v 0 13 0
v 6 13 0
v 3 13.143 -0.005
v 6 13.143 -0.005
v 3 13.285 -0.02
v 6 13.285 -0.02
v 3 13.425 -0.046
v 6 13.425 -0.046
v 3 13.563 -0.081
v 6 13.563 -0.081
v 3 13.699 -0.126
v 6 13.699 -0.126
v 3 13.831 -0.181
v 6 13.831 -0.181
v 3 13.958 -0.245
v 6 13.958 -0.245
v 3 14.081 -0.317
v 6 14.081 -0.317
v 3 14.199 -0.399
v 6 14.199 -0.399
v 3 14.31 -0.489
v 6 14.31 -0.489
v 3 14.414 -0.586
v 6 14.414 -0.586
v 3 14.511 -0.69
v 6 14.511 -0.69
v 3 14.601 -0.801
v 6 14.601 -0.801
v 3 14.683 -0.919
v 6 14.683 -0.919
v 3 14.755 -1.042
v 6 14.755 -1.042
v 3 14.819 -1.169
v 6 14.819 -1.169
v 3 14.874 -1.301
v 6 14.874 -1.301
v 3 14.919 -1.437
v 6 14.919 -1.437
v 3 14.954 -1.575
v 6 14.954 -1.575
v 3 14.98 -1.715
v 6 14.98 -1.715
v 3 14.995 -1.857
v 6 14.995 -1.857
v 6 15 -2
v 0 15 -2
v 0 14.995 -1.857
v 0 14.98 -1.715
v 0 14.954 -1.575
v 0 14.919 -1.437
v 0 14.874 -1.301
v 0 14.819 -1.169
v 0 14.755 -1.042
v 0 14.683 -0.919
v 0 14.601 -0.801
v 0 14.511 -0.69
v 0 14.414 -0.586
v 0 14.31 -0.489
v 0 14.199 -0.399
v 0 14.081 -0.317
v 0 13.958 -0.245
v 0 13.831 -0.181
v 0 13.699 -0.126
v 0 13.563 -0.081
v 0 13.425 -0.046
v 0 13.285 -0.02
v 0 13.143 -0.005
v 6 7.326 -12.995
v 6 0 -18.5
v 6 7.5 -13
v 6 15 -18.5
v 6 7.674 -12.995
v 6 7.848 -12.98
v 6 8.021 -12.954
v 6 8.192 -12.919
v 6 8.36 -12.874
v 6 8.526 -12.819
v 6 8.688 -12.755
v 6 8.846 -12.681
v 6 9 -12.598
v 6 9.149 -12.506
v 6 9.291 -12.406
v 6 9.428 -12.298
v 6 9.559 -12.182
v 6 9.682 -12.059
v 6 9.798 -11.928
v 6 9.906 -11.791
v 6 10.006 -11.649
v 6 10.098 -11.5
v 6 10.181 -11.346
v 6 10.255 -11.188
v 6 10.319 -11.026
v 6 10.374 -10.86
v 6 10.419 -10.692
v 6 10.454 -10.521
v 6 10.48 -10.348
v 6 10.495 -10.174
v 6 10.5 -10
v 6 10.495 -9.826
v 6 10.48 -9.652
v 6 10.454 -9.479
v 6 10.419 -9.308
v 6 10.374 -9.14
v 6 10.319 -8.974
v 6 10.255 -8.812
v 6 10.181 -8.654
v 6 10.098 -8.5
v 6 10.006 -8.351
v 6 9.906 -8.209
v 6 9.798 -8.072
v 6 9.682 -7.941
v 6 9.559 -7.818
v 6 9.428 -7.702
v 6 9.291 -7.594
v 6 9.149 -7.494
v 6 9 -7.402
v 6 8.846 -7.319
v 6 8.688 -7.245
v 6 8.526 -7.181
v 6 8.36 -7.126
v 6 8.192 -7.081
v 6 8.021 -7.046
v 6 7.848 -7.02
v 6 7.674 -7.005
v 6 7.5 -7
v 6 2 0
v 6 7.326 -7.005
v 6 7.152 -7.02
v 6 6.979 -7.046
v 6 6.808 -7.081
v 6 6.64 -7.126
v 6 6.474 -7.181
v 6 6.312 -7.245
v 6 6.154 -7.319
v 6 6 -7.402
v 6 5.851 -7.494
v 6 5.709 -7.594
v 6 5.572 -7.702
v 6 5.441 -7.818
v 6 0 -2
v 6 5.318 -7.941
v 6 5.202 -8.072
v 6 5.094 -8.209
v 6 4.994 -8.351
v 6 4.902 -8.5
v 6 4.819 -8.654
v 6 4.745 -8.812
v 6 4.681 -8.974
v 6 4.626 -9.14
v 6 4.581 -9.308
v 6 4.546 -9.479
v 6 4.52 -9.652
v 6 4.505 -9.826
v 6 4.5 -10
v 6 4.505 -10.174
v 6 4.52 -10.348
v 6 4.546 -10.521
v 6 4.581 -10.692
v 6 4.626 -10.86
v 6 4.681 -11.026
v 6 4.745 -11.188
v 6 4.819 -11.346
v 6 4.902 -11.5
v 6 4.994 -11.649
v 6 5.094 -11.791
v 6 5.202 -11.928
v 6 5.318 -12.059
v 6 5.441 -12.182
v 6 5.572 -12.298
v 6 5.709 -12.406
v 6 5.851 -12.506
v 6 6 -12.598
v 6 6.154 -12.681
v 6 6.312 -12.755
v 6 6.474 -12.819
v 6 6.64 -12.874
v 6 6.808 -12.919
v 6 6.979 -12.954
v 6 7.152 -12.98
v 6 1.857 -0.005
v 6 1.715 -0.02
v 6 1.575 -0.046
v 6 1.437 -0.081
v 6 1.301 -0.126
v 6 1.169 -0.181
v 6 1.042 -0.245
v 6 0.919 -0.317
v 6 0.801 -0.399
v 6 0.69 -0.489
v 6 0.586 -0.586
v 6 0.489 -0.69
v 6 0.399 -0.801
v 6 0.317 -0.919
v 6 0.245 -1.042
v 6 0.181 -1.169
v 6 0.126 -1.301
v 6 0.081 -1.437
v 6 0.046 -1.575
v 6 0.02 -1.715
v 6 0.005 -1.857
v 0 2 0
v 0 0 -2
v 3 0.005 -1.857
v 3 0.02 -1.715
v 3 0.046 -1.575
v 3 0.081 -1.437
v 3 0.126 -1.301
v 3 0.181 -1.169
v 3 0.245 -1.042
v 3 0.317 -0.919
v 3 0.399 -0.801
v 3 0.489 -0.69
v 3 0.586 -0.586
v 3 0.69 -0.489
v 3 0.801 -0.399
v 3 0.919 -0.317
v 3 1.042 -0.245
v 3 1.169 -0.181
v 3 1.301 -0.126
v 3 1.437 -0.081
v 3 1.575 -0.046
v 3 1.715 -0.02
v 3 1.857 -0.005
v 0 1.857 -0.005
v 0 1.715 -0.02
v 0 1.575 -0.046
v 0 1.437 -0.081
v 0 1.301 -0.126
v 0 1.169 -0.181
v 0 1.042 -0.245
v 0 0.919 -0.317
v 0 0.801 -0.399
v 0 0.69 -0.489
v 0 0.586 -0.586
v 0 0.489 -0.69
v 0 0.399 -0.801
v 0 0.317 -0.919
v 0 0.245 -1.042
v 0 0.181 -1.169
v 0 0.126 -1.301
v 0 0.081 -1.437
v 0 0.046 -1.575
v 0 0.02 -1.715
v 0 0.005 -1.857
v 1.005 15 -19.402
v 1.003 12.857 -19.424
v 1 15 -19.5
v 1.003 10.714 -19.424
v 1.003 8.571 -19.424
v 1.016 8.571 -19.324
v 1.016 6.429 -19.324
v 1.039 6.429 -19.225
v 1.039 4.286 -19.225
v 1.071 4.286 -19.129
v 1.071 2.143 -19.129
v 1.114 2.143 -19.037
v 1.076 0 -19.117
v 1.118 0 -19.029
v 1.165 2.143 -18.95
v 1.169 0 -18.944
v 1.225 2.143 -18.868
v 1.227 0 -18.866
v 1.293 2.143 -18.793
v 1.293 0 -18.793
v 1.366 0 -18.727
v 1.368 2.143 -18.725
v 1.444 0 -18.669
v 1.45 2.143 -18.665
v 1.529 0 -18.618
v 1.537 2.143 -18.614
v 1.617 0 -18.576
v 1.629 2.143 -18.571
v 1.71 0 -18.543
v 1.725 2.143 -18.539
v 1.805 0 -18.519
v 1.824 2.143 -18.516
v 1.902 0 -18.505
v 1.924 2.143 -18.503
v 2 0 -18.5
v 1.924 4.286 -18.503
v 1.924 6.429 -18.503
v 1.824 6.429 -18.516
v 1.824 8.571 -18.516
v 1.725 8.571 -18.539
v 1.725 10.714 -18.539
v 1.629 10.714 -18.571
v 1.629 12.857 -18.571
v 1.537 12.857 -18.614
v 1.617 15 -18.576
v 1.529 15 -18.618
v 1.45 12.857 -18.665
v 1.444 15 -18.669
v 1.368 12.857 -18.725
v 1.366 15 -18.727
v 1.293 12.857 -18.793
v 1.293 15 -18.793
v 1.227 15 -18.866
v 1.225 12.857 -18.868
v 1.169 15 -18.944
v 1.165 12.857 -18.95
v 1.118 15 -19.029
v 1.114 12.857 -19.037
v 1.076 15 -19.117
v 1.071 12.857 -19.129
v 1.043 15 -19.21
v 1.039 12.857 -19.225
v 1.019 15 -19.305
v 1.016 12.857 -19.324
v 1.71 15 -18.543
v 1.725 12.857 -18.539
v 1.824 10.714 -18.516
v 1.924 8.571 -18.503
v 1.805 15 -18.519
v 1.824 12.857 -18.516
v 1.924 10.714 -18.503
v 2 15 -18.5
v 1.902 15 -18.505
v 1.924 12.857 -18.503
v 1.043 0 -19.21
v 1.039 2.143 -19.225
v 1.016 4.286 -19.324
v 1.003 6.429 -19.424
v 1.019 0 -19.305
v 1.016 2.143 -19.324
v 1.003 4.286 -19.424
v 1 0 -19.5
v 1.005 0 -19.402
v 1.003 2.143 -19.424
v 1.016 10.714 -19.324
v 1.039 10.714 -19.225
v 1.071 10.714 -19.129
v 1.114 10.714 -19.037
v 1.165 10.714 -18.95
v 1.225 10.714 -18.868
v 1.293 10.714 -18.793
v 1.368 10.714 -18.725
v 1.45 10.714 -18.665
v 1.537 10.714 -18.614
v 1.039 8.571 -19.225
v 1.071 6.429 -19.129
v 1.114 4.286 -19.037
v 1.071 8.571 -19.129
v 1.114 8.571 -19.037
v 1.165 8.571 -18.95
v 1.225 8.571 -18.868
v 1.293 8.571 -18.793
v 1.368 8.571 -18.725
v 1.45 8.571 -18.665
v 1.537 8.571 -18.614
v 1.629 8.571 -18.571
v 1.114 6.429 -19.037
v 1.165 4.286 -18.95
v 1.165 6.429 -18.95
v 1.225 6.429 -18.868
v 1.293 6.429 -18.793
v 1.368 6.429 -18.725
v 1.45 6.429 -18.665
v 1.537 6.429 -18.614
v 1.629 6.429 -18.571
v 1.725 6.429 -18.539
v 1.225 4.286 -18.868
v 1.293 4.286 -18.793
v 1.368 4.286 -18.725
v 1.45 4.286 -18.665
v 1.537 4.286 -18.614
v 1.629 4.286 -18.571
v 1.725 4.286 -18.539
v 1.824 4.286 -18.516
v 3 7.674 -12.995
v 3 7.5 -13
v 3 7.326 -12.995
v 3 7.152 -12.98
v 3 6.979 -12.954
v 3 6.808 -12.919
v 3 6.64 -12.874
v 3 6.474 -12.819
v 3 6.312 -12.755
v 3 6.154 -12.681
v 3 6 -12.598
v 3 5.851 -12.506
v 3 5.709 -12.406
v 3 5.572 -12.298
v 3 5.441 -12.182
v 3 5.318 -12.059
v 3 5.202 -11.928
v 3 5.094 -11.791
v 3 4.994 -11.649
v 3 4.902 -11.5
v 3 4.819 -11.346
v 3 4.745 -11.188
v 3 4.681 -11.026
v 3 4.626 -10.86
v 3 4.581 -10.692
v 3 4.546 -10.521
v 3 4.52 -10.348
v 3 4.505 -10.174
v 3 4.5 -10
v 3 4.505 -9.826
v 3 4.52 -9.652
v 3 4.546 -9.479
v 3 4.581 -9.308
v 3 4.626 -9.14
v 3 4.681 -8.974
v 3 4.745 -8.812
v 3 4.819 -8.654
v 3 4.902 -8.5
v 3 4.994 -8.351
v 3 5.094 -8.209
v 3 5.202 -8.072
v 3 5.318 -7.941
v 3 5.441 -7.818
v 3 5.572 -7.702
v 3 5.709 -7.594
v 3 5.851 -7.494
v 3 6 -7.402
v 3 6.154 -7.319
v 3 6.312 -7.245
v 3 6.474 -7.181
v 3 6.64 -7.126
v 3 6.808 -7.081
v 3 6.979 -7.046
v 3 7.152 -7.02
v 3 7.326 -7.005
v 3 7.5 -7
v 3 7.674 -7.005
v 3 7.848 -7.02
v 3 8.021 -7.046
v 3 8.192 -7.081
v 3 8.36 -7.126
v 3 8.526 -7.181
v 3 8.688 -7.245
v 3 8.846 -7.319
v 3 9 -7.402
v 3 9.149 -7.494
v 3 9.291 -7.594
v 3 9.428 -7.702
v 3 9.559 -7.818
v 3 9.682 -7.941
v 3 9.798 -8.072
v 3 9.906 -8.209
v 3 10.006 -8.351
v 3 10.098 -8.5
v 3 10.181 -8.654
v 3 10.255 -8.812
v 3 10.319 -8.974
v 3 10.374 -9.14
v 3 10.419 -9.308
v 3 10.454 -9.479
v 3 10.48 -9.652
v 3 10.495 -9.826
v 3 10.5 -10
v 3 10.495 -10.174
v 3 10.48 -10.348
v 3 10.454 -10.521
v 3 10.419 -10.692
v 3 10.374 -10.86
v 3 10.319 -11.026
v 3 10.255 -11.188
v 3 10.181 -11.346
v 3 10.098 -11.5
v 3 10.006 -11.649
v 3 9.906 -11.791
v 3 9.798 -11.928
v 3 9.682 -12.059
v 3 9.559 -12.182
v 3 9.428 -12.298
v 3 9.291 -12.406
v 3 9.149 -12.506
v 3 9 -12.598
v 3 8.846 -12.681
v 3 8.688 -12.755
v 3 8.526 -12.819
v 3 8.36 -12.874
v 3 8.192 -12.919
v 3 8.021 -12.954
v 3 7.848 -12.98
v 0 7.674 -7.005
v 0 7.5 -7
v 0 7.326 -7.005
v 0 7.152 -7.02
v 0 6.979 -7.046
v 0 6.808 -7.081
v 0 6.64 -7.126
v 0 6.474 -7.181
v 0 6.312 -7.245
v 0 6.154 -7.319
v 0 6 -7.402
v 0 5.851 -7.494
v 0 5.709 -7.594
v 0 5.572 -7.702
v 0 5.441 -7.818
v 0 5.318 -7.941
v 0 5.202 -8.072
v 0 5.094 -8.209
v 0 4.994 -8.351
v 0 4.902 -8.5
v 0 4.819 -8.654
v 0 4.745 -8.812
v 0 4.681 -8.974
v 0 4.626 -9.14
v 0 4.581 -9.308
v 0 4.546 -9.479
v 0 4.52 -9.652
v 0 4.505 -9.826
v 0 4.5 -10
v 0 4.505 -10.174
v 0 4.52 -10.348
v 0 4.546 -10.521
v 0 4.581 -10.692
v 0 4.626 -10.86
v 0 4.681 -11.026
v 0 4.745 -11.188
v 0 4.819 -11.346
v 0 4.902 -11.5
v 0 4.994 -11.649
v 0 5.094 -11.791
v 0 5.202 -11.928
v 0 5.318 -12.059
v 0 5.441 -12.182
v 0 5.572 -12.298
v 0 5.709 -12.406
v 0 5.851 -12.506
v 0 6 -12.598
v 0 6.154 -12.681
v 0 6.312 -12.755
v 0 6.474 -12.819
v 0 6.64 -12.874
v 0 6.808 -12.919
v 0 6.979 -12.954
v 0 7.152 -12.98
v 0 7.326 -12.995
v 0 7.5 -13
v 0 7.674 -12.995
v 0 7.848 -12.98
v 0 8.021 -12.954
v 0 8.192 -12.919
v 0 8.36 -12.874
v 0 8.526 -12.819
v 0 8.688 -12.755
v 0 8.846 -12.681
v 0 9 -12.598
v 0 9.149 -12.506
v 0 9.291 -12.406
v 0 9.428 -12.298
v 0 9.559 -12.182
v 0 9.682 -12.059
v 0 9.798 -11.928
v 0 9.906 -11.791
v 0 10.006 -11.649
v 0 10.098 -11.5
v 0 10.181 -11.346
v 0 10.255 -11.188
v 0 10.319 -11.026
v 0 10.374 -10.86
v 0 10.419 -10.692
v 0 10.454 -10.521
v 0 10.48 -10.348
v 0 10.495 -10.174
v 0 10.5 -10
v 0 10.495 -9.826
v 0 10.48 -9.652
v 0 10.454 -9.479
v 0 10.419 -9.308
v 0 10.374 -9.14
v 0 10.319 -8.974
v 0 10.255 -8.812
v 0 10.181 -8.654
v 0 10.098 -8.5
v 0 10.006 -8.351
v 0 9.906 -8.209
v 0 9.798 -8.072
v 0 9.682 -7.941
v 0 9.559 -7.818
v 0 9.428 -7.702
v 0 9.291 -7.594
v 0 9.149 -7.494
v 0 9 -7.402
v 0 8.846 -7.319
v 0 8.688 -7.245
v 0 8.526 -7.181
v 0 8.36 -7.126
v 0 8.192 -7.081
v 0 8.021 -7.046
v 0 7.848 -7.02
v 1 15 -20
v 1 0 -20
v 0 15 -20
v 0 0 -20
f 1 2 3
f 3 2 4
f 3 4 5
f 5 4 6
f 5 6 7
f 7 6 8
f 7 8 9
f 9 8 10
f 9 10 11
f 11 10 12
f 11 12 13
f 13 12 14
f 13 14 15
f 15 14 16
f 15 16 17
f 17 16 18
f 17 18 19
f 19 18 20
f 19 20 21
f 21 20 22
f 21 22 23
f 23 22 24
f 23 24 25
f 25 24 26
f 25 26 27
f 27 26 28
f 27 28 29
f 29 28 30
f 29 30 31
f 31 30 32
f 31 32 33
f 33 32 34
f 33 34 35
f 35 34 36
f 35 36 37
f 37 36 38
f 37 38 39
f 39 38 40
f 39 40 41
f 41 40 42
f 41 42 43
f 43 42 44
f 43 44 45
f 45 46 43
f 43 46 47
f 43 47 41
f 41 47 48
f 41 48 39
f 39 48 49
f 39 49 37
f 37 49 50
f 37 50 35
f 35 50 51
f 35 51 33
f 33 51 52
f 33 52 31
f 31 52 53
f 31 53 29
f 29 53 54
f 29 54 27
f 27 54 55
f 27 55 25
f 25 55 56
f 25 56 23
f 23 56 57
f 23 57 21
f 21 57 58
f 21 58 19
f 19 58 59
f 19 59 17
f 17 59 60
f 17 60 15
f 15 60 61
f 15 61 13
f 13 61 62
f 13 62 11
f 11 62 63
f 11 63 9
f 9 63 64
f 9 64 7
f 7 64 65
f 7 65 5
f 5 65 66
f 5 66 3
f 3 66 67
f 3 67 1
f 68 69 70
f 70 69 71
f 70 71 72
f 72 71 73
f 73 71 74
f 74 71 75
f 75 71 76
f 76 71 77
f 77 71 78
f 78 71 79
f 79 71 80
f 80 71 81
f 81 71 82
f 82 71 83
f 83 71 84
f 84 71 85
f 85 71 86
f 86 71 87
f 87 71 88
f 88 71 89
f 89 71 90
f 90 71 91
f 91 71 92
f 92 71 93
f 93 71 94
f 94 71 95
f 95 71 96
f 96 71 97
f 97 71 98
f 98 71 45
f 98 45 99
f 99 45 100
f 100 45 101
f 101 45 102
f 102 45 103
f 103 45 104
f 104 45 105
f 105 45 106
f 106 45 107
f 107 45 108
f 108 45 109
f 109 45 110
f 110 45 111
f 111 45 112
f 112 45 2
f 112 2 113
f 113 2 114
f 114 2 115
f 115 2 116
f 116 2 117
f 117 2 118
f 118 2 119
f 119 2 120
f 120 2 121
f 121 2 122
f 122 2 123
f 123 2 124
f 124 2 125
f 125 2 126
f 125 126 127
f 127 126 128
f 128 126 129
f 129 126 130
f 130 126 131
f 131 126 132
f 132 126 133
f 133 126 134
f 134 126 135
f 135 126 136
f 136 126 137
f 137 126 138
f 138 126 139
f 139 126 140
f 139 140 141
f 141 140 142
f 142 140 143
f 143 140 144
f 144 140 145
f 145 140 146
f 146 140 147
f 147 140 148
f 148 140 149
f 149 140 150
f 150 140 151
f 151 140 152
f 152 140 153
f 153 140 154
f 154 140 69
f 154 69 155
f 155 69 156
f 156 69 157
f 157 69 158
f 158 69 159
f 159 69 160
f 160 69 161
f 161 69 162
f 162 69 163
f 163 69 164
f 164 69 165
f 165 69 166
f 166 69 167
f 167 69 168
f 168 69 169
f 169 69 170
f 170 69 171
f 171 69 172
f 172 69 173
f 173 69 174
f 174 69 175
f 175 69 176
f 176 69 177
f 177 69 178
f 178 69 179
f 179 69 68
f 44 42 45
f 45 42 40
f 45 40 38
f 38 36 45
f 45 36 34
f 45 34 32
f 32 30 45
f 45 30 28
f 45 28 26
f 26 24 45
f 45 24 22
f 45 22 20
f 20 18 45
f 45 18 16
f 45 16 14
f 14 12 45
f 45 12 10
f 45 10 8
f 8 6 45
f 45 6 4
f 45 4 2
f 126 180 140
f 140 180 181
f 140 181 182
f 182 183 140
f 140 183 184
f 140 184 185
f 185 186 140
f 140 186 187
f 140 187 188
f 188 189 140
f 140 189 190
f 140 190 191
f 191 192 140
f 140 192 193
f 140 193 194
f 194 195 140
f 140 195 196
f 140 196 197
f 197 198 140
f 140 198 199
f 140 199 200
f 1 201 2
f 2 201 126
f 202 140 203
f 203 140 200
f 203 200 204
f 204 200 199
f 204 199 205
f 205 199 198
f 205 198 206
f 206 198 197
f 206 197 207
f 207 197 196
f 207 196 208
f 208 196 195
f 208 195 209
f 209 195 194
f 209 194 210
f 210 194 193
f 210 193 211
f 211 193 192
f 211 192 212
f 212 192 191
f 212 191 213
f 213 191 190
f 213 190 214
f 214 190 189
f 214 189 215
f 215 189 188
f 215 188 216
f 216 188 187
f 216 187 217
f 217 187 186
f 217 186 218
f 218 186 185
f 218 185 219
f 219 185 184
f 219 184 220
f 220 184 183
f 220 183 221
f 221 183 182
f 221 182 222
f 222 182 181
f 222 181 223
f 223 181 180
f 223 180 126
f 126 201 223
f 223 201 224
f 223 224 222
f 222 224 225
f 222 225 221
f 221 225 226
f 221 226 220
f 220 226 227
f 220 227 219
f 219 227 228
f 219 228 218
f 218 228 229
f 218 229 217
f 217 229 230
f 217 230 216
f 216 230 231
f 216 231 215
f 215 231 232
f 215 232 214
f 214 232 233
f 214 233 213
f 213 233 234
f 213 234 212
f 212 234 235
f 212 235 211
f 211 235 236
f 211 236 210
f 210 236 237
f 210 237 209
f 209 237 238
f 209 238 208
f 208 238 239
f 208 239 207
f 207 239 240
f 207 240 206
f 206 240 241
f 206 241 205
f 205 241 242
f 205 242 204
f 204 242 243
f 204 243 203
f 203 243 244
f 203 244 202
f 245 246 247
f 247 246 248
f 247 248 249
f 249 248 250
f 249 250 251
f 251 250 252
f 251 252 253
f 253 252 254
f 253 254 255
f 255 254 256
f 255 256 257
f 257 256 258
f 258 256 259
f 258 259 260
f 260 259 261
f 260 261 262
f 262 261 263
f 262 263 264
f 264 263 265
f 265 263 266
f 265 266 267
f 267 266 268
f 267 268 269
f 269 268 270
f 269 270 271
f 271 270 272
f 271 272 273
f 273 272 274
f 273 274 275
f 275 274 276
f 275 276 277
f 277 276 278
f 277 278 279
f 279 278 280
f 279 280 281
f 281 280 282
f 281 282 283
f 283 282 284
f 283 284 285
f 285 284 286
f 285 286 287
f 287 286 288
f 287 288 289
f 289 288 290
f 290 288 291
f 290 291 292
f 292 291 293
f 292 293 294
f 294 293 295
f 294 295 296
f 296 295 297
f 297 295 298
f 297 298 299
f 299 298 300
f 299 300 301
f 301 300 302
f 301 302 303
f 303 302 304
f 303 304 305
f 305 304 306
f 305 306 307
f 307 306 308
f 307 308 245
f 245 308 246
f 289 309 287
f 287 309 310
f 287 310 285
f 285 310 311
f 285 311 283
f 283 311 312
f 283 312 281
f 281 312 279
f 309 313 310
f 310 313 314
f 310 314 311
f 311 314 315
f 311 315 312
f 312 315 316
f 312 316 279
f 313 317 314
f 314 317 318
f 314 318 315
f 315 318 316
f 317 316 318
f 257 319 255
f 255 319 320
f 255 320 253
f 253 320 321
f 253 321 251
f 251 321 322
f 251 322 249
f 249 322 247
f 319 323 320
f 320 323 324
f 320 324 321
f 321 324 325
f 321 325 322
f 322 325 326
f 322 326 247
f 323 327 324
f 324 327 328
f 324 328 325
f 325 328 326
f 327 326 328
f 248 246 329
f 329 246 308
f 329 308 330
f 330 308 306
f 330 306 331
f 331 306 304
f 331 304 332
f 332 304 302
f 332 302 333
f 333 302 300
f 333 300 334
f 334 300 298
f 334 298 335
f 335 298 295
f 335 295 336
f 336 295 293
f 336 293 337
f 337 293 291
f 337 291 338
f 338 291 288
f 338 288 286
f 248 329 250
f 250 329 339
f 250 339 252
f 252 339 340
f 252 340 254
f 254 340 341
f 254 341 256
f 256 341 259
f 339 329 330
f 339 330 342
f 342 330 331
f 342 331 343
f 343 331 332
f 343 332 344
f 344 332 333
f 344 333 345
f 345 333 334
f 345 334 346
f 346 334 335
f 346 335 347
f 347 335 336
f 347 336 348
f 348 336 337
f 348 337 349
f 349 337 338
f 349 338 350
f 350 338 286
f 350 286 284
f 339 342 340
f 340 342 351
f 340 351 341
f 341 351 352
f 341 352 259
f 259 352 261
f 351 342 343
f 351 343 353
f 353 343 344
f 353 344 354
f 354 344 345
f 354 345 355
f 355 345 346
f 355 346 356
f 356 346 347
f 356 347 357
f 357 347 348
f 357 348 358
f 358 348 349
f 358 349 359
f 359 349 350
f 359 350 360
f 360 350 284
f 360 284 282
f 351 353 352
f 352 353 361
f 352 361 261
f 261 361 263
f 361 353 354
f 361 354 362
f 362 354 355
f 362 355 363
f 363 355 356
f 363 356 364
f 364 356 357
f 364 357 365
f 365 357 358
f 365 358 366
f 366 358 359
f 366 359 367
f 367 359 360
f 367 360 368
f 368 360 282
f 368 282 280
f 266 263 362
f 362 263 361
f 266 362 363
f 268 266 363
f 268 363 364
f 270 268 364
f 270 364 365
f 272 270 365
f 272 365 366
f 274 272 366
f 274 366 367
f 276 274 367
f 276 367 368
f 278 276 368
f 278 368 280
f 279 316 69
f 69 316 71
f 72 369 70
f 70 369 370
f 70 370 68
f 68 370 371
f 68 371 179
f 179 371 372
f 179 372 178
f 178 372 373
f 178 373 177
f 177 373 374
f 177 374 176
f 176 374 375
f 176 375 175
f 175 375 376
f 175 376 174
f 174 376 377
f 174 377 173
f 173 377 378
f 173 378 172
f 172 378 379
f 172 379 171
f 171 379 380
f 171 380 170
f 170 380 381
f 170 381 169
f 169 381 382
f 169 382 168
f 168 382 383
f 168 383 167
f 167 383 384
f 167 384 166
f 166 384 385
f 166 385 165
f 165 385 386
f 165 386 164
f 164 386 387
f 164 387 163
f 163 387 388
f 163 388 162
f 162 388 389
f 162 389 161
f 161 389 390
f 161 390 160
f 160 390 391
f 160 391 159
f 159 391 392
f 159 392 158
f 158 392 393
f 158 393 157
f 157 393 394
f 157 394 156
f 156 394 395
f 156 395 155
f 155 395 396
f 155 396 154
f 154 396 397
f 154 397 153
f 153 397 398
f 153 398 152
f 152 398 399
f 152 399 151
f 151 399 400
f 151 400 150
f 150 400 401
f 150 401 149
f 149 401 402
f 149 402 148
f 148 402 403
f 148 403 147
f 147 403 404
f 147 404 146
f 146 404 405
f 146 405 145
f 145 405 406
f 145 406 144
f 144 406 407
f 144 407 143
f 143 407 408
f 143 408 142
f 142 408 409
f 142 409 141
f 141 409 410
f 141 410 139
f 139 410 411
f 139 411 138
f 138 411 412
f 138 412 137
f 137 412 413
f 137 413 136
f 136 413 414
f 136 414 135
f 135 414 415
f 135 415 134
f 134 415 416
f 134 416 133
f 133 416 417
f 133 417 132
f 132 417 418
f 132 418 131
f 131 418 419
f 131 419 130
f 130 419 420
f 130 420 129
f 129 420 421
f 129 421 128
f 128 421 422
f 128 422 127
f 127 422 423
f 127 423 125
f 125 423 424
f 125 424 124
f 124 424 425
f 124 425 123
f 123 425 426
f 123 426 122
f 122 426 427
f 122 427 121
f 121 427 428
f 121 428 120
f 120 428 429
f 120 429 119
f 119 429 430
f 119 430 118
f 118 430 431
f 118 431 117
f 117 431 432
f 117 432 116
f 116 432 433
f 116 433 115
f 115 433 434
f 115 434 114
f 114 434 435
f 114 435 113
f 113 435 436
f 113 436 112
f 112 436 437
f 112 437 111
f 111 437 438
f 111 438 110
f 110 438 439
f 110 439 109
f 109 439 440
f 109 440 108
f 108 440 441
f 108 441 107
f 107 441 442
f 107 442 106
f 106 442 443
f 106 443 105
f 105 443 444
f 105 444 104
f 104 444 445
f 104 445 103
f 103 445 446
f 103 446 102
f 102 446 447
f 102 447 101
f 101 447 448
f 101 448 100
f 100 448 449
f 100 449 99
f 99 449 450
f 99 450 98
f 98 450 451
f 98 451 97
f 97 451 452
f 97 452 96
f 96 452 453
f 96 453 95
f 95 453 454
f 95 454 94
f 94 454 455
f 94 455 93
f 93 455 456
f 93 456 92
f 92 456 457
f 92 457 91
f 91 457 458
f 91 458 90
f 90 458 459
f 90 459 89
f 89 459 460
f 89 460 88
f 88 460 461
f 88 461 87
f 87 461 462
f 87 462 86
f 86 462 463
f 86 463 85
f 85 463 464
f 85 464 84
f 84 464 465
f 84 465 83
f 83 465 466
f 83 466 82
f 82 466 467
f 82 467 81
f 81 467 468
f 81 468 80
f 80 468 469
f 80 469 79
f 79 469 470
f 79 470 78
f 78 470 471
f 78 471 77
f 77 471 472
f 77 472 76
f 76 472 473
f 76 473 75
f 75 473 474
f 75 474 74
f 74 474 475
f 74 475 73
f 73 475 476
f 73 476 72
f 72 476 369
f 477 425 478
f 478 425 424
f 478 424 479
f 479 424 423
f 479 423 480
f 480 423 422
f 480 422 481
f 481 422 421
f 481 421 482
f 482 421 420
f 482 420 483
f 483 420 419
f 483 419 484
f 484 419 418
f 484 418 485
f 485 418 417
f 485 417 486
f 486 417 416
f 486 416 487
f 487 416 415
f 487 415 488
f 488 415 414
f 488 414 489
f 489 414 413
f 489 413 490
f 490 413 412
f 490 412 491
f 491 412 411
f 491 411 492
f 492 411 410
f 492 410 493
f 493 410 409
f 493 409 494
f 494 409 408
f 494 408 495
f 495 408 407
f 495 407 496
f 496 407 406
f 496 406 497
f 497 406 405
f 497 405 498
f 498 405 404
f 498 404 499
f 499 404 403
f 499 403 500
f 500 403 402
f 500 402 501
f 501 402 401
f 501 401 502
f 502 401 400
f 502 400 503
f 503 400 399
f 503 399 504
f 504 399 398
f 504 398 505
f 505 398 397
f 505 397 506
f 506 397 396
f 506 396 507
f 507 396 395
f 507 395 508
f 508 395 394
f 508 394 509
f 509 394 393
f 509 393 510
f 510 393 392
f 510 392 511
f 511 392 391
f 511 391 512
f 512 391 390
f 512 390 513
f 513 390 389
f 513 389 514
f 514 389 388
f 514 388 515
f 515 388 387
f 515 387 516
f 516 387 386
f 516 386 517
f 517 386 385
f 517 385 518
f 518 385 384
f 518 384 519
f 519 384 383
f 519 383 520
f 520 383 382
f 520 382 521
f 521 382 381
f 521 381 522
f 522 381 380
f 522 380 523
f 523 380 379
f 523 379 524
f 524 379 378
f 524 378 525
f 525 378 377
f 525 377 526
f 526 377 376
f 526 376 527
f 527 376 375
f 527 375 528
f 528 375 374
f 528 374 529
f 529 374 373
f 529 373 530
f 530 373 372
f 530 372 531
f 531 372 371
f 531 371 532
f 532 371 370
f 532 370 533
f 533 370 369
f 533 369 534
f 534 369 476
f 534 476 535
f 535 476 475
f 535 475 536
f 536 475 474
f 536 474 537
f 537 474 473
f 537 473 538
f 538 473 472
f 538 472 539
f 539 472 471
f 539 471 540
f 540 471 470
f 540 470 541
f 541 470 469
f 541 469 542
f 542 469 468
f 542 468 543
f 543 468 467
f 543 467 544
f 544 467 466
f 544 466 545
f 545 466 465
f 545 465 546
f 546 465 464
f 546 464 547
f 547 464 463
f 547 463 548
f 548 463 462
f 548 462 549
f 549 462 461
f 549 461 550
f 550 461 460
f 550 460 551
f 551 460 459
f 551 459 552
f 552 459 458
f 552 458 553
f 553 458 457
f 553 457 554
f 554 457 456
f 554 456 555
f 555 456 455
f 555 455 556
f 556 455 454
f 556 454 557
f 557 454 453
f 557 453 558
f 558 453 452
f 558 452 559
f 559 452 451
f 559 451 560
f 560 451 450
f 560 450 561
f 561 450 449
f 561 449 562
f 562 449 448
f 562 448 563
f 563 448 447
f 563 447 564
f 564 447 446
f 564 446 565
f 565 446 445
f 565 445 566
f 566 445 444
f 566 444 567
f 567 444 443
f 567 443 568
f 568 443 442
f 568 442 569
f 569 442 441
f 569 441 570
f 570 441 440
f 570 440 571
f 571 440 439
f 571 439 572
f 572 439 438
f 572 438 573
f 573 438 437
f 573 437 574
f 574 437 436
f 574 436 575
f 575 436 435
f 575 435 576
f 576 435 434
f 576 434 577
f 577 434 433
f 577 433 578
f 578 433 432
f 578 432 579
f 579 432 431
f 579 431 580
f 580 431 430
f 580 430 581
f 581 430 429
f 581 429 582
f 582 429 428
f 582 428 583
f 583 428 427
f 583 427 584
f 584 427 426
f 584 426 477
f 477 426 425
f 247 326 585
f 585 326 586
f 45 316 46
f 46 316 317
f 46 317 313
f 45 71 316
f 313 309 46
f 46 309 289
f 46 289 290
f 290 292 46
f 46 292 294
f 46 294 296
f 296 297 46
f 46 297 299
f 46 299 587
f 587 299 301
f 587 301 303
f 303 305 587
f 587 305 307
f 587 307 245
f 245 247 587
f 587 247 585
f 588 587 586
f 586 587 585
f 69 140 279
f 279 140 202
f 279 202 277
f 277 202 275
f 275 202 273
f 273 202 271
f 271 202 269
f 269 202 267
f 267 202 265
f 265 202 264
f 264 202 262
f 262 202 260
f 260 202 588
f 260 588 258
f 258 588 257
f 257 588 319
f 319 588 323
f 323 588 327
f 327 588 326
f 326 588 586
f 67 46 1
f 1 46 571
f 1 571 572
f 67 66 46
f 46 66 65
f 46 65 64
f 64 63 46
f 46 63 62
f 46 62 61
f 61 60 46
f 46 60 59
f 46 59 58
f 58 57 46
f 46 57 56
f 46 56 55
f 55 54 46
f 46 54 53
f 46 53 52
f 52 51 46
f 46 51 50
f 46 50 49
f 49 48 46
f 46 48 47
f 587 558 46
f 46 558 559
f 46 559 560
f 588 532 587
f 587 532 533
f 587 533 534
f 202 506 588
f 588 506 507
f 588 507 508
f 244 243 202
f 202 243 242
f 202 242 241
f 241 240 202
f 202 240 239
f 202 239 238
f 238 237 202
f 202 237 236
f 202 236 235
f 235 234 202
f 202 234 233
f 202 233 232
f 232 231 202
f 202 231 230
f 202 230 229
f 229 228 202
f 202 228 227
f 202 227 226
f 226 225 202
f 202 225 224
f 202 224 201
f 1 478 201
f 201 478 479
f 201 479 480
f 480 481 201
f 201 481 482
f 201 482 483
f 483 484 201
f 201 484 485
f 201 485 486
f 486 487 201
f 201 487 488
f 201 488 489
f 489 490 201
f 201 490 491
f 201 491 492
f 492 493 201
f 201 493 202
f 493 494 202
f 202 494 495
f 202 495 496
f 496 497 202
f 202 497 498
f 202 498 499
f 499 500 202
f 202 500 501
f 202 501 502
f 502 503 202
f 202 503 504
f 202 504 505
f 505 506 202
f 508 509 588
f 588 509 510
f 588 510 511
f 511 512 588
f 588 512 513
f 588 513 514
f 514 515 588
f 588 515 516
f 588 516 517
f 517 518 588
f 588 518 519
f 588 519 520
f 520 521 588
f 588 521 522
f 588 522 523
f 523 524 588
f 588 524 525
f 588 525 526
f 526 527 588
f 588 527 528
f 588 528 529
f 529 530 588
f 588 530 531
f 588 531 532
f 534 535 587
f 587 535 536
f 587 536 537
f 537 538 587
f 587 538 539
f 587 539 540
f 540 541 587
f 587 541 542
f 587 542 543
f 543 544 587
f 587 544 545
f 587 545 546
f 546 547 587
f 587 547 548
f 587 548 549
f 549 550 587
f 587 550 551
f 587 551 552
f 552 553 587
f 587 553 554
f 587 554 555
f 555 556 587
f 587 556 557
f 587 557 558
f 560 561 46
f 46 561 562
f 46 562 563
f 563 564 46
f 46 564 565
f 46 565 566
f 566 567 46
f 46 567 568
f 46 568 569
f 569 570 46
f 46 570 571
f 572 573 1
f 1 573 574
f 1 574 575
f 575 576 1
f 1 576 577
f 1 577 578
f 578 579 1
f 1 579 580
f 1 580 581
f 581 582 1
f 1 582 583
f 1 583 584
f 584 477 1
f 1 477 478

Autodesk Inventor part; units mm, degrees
ref_plane "YZ Plane" through (0, 0, 0) normal (1, 0, 0) x (0, 1, 0)
ref_plane "XZ Plane" through (0, 0, 0) normal (0, 1, 0) x (-1, 0, 0)
ref_plane "XY Plane" through (0, 0, 0) normal (0, 0, 1) x (1, 0, 0)
sketch "Эскиз1" plane through (0, 0, 0) normal (1, 0, 0) x (0, 1, 0)
  line L0 (0, 0) -> (15, 0)
  line L1 (15, 0) -> (15, -20)
  line L2 (15, -20) -> (0, -20)
  line L3 (0, -20) -> (0, 0)
  dimension "d0" = 15
  dimension "d1" = 20
extrude "Выдавливание1" add sketch "Эскиз1" along normal blind 1
sketch "Эскиз2" plane through (1, 0, 0) normal (1, 0, 0) x (0, 0, -1)
  line L0 (0, 0) -> (20, 0) projected
  line L1 (20, 15) -> (0, 15) projected
  line L2 (0, 0) -> (18.5, 0)
  line L3 (18.5, 0) -> (18.5, 15)
  line L4 (18.5, 15) -> (0, 15)
  line L5 (0, 15) -> (0, 0)
  point P0 (0, 15)
  dimension "d4" = 18.5
extrude "Выдавливание2" add sketch "Эскиз2" along normal blind 5
sketch "Эскиз3" plane through (0, 0, 0) normal (-1, 0, 0) x (0, 0, 1)
  circle A0 centre (-10, 7.5) radius 3
  line L0 (-20, 0) -> (-20, 15) projected
  line L1 (-20, 15) -> (0, 15) projected
  point P0 (0, 0)
  dimension "d7" = 6
  dimension "d8" = 10
  dimension "d9" = 7.5
extrude "Выдавливание3" cut sketch "Эскиз3" against normal blind 10
fillet "Сопряжение1" radius 1 1 edges at (1, 7.5, -18.5)
fillet "Сопряжение2" radius 2 2 edges at (3, 0, 0) (3, 15, 0)
properties part number "CableHolder"
